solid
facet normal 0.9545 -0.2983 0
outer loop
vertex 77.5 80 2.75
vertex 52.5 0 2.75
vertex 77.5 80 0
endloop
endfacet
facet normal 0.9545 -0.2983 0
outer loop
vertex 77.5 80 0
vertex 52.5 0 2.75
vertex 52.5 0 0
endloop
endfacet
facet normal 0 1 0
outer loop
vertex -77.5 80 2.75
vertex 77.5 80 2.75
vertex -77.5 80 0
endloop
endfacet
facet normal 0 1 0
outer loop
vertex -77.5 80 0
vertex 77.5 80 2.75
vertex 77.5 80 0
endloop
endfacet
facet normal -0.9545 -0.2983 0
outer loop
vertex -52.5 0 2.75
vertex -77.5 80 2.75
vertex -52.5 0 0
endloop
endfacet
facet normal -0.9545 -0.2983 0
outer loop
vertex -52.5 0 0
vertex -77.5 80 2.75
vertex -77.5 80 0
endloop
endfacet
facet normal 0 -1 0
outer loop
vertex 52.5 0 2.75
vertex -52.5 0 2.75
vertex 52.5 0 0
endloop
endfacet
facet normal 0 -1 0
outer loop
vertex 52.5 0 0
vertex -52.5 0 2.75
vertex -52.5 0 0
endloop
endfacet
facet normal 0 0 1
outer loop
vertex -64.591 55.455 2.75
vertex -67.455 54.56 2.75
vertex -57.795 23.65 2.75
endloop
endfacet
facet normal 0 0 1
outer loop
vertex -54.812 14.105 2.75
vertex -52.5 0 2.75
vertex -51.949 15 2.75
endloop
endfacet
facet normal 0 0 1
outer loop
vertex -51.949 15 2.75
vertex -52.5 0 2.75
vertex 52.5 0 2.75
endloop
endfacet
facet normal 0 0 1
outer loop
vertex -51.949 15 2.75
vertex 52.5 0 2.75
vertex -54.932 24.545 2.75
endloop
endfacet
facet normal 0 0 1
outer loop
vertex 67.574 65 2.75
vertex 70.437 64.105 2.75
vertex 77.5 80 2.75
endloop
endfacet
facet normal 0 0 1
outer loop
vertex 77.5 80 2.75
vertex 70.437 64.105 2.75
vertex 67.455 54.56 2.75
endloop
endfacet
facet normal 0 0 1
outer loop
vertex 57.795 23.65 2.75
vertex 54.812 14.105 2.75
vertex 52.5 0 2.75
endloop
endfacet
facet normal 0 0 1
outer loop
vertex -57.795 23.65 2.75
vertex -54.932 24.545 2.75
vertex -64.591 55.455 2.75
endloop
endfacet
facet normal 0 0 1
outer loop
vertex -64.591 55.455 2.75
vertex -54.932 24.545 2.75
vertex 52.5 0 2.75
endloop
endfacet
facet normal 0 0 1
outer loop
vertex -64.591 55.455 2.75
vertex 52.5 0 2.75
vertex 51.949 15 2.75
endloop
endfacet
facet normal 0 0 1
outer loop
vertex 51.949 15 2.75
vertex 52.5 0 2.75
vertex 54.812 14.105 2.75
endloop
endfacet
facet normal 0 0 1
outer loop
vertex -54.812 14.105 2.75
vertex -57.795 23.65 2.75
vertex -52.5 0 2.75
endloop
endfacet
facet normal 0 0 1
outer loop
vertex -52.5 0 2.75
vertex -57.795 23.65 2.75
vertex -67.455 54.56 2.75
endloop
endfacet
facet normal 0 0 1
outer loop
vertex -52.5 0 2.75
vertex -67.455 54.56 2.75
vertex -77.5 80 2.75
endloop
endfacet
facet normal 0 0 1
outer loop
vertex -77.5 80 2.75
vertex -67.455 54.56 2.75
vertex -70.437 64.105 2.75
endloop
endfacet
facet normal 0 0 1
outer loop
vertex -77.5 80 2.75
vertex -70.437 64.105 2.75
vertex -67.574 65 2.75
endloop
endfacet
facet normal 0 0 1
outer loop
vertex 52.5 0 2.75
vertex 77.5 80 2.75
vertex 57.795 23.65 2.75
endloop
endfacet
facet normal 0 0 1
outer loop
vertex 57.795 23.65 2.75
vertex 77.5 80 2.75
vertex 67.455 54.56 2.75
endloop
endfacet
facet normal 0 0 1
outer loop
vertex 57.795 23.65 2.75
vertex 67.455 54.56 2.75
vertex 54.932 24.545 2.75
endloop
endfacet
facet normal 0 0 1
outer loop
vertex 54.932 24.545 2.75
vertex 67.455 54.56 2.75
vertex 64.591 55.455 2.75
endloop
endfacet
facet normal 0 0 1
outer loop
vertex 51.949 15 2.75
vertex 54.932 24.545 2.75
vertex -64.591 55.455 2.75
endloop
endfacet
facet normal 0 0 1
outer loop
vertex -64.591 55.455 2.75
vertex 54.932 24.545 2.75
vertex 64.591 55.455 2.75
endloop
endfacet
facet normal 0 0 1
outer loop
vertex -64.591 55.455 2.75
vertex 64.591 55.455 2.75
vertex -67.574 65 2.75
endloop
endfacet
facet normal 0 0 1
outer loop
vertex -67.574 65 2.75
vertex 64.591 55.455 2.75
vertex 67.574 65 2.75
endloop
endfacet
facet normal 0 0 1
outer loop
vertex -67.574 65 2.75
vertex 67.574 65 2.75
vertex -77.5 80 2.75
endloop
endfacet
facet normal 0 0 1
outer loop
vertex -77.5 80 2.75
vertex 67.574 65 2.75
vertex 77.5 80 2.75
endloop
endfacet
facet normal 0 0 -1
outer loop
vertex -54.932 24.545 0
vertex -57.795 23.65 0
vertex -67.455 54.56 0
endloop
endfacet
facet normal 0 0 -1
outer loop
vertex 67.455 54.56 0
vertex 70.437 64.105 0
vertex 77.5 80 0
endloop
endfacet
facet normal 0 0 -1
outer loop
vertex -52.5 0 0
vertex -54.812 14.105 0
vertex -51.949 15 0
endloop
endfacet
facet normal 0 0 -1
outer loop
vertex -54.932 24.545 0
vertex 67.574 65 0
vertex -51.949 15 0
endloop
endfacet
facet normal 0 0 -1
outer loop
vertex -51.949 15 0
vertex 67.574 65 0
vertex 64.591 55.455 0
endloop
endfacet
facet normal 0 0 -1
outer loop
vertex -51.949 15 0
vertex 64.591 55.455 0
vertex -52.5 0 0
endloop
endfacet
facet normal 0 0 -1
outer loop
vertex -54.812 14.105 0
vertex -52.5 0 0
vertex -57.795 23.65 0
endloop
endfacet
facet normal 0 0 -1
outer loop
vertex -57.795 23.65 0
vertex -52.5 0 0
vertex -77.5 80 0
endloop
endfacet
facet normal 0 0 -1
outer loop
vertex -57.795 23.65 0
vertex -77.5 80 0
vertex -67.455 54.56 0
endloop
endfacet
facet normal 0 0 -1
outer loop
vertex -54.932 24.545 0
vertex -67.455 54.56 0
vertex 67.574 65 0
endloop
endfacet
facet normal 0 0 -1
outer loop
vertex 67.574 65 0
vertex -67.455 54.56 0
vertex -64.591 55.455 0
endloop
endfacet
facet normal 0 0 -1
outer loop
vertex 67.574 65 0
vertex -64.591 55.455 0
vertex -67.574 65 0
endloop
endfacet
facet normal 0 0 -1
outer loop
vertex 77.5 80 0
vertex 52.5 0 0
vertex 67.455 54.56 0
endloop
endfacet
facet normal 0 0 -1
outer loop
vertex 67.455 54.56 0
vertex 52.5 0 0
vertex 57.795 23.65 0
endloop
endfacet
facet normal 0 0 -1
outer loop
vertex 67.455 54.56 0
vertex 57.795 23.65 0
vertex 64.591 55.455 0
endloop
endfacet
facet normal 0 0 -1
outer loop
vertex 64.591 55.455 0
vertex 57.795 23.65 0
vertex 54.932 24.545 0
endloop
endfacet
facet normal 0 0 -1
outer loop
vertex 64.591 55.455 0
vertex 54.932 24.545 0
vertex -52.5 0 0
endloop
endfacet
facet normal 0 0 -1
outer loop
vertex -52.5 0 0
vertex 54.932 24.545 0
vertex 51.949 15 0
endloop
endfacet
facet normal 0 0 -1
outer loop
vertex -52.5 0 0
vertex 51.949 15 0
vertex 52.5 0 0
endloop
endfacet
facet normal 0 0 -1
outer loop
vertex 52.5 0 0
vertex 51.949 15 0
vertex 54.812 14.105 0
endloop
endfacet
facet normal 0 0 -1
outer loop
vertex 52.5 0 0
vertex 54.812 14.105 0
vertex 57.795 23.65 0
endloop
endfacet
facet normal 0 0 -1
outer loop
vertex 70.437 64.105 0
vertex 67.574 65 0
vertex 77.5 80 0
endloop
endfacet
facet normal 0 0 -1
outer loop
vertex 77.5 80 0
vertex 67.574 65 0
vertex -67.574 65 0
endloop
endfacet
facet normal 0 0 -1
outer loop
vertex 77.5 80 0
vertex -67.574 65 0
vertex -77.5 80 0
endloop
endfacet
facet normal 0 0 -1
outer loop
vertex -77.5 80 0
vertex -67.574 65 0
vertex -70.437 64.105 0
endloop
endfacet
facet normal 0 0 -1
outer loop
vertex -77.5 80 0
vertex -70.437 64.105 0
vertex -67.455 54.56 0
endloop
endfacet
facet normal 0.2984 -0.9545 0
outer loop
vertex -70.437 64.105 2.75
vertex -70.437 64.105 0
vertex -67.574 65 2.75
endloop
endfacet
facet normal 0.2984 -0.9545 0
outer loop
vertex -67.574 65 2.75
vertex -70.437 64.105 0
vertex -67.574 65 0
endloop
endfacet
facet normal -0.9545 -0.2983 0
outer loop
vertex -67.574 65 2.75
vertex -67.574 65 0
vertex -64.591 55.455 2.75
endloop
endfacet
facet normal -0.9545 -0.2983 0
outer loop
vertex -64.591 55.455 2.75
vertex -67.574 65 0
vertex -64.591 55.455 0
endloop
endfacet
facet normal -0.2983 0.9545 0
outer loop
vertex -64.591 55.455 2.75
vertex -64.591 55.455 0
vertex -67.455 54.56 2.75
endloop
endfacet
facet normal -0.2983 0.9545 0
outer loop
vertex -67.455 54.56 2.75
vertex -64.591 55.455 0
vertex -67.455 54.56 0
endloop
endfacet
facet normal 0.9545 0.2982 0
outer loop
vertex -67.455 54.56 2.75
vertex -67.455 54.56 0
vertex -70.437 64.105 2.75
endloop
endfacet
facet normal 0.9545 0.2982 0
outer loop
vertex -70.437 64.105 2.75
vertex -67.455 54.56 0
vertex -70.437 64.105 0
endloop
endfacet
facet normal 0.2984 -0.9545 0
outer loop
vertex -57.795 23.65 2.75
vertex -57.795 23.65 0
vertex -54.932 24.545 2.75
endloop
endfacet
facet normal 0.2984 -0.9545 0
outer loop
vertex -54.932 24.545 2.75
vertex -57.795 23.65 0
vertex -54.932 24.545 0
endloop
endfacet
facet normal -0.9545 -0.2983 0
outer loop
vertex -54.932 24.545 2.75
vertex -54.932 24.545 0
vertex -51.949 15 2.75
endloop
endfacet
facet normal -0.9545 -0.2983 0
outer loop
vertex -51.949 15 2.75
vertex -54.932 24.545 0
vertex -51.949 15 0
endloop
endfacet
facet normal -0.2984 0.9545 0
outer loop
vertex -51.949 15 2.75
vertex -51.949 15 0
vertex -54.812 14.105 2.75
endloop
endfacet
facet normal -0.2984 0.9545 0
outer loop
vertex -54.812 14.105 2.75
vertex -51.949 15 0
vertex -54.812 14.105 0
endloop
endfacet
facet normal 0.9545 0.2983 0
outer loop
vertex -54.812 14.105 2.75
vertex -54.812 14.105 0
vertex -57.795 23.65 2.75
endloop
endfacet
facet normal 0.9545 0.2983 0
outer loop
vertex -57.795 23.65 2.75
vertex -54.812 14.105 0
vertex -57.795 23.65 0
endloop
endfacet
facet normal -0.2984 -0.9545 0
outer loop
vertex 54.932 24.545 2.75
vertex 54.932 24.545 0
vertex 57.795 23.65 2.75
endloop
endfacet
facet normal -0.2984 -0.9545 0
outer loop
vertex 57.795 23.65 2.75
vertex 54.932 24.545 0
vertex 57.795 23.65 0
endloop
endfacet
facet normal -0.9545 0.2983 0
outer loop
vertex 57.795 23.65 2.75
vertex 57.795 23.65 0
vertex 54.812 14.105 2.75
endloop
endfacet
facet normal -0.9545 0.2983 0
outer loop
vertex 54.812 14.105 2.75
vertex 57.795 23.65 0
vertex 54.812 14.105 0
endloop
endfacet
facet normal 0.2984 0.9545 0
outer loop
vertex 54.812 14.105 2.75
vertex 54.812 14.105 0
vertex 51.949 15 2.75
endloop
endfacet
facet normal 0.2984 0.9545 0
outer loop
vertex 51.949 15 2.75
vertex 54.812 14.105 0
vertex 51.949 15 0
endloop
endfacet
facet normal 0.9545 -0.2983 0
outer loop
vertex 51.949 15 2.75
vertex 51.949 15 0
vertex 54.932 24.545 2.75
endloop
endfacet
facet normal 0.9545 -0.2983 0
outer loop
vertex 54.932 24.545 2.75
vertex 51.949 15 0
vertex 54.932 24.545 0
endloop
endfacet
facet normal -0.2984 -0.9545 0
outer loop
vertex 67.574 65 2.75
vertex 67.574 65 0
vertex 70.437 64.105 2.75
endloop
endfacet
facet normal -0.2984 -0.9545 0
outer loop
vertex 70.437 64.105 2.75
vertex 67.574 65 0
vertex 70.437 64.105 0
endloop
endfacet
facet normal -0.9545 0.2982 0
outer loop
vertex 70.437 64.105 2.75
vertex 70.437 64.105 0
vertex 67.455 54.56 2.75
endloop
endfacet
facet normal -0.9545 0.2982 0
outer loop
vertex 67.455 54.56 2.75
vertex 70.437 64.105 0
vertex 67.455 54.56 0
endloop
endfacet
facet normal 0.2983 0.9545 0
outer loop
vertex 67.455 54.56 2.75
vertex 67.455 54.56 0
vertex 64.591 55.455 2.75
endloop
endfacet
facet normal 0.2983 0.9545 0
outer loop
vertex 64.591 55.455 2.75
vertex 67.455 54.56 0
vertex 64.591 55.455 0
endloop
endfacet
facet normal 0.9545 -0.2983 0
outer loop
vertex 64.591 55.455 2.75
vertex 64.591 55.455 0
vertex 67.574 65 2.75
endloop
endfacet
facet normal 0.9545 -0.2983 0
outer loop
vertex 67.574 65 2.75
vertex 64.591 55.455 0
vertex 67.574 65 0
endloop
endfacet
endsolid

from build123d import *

# Parameters (mm, degrees)
BOSS_EXTRUDE1_DEPTH = 2.75
CUT_EXTRUDE1_DEPTH  = 10


with BuildPart() as part:
    # Sketch1 → Boss-Extrude1 (new body)
    with BuildSketch(Plane.XY):
        Polygon((-52.5, 0), (52.5, 0), (77.5, 80), (-77.5, 80), align=None)
    extrude(amount=BOSS_EXTRUDE1_DEPTH)

    # Sketch4 → Cut-Extrude1 (cut)
    with BuildSketch(Plane.XY.offset(2.75)):
        Polygon((70.437485367, 64.105175021), (67.454735436, 54.56037524), (64.591295502, 55.45520022), (67.574045433, 65), align=None)
        Polygon((57.795235299, 23.649974801), (54.812485367, 14.105175021), (51.949045433, 15), (54.931795364, 24.54479978), align=None)
        Polygon((-54.931795364, 24.54479978), (-51.949045433, 15), (-54.812485367, 14.105175021), (-57.795235299, 23.649974801), align=None)
        Polygon((-67.574045433, 65), (-64.591295502, 55.45520022), (-67.454735436, 54.56037524), (-70.437485367, 64.105175021), align=None)
    extrude(amount=-CUT_EXTRUDE1_DEPTH, mode=Mode.SUBTRACT)


solid = part.part
